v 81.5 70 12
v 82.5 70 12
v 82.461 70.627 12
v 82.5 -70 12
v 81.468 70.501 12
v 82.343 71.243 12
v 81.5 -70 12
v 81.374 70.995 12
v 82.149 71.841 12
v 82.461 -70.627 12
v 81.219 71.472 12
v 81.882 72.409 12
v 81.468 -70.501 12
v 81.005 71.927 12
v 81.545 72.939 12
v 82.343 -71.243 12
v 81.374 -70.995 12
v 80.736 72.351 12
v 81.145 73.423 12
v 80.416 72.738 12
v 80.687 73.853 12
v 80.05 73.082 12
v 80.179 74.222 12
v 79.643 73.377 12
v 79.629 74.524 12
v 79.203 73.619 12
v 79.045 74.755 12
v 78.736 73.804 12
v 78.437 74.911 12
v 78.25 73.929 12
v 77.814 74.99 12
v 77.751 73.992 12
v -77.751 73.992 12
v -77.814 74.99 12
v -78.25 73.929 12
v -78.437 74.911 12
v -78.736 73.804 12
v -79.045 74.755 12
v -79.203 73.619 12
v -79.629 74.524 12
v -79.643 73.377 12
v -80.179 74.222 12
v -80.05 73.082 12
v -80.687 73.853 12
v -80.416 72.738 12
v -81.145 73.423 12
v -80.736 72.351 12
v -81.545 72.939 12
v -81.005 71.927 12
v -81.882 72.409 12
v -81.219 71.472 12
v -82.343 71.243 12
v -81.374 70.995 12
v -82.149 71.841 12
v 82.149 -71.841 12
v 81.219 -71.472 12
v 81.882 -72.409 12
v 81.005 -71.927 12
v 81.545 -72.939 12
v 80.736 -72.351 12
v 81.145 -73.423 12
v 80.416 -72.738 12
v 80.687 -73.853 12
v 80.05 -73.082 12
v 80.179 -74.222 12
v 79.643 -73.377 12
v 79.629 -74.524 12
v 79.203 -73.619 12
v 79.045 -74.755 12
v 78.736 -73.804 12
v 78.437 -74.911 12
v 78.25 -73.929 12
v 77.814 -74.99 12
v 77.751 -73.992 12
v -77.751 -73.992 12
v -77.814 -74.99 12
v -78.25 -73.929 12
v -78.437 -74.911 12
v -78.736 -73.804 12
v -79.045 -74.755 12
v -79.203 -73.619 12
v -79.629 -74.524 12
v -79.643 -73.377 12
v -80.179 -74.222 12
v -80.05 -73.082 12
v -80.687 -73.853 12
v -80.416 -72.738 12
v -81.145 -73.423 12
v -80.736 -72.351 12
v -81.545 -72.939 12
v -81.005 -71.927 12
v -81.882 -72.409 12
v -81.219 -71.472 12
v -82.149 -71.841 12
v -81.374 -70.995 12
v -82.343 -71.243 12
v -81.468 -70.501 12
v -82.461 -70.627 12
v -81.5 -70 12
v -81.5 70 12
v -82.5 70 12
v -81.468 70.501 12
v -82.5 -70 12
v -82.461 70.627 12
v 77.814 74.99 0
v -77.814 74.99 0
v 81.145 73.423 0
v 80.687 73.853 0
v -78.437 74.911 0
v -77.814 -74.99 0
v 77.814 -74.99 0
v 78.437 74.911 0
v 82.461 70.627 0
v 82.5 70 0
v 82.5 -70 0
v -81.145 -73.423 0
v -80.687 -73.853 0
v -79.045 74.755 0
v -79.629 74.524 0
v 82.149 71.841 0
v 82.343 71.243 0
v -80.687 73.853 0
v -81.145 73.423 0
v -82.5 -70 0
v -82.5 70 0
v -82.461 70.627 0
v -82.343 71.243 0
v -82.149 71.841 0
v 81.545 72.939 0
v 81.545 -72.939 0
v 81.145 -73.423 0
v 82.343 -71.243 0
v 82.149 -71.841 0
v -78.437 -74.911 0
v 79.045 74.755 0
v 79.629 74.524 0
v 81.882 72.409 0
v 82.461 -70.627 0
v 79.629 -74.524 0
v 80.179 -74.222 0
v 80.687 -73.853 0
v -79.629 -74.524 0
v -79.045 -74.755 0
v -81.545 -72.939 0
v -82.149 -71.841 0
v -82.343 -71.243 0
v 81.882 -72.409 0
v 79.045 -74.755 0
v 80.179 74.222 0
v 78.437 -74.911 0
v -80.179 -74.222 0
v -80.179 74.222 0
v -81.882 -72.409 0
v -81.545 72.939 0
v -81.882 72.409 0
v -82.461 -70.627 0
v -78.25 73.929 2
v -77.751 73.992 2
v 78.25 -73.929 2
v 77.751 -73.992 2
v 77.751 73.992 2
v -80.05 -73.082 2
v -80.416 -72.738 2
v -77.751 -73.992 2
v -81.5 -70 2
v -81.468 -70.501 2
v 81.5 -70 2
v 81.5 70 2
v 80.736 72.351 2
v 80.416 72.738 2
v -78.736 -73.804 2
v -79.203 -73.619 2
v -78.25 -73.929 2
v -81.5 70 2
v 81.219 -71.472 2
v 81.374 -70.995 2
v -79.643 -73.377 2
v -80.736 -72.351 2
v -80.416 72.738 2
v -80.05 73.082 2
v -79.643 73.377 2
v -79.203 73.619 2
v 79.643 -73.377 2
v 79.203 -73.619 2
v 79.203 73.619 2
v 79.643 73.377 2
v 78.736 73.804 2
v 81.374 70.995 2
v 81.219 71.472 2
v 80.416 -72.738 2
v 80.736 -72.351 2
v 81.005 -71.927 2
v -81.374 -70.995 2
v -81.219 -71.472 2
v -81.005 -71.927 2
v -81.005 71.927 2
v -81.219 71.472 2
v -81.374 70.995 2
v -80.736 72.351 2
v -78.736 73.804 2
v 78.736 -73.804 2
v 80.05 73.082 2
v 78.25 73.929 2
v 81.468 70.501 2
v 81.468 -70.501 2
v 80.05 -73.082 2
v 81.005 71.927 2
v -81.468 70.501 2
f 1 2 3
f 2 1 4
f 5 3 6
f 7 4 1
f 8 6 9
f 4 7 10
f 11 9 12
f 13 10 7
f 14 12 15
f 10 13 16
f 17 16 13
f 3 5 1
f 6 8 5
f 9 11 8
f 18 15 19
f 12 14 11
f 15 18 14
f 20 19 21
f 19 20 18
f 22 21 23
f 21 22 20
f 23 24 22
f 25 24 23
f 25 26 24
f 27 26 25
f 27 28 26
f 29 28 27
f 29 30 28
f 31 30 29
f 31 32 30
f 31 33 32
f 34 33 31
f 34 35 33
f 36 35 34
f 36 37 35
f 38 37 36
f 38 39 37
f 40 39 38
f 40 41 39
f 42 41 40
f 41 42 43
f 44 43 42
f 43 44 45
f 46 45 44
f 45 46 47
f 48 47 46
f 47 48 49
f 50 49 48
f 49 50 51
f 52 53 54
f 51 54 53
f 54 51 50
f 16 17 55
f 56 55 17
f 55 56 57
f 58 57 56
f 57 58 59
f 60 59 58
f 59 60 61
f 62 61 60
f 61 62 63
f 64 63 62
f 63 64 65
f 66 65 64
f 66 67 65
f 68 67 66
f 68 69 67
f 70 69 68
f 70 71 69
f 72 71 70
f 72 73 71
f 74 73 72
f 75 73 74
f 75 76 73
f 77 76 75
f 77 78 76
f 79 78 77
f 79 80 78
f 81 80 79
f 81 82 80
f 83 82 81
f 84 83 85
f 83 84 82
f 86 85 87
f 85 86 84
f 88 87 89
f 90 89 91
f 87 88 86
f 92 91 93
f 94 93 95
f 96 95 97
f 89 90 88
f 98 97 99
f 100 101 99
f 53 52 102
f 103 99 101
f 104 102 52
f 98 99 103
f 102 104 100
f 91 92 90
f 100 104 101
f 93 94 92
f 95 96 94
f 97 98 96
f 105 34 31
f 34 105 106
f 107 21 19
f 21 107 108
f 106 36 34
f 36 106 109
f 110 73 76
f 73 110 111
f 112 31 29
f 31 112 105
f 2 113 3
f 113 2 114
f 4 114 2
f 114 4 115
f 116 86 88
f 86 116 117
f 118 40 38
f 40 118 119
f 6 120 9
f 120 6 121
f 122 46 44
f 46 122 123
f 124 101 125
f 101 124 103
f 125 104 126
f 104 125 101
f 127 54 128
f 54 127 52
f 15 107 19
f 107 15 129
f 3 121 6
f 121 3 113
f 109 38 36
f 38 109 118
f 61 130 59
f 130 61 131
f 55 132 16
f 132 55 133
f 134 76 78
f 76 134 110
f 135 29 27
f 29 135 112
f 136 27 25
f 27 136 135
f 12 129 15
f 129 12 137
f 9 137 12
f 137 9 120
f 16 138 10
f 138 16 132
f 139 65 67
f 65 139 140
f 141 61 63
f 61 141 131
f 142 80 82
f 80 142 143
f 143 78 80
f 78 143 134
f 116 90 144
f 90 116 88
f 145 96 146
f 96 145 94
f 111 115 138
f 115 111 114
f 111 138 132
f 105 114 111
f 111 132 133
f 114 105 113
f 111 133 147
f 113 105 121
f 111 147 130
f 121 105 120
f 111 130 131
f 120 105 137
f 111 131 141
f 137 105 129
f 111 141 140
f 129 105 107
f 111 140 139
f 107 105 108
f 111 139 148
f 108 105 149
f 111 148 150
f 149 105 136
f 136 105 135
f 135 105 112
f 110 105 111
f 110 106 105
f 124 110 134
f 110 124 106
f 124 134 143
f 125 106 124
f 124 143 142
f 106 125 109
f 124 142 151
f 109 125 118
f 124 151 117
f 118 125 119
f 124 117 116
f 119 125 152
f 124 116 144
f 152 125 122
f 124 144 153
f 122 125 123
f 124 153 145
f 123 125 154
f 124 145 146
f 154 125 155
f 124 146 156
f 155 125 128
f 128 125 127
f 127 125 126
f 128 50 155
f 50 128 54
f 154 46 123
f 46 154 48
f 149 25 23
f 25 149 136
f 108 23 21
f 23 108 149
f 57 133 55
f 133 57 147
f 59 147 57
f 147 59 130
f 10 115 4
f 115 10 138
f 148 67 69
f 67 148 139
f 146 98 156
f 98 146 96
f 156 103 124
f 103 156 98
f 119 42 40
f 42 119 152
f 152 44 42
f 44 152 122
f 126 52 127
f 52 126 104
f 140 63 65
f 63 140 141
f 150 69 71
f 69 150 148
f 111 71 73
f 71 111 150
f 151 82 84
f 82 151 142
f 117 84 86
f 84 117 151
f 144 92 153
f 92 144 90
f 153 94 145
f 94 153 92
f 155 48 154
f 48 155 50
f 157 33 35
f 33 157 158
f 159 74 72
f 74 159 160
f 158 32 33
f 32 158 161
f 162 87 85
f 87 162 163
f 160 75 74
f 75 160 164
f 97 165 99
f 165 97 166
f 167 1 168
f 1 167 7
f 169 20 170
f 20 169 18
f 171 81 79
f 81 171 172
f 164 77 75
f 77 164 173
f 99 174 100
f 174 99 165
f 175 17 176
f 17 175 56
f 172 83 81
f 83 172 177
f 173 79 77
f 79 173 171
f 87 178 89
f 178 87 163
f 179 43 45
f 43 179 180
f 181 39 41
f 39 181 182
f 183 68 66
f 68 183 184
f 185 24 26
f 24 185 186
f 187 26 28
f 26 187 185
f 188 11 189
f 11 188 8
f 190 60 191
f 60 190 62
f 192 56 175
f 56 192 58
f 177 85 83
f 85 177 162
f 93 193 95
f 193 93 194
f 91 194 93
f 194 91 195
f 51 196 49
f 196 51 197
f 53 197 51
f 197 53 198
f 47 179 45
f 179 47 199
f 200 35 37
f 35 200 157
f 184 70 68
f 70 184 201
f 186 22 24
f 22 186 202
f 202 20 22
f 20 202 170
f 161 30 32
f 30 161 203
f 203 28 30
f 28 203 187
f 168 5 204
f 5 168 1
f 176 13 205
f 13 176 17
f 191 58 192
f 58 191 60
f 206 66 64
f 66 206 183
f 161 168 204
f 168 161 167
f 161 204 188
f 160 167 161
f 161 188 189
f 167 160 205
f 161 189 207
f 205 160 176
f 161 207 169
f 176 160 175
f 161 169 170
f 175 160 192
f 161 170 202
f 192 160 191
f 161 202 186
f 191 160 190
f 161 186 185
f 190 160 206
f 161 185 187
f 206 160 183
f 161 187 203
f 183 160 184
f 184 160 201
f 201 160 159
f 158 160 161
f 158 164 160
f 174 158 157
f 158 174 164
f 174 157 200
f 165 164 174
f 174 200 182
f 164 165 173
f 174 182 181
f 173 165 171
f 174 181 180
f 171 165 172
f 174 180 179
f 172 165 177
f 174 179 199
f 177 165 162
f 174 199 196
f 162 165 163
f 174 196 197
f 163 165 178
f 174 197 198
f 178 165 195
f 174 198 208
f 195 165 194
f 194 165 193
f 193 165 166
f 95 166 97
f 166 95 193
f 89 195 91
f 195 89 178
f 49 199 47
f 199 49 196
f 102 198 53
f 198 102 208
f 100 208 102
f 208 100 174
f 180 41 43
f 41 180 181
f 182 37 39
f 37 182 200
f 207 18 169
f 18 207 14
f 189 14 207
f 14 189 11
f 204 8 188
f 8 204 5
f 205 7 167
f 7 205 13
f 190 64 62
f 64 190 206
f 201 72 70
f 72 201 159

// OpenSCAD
$fn = 50;


difference() {
	union() {
		hull() {
			translate(v = [-77.5000000000, 70.0000000000, 0]) {
				cylinder(h = 12, r = 5);
			}
			translate(v = [77.5000000000, 70.0000000000, 0]) {
				cylinder(h = 12, r = 5);
			}
			translate(v = [-77.5000000000, -70.0000000000, 0]) {
				cylinder(h = 12, r = 5);
			}
			translate(v = [77.5000000000, -70.0000000000, 0]) {
				cylinder(h = 12, r = 5);
			}
		}
	}
	union() {
		translate(v = [0, 0, 2]) {
			hull() {
				translate(v = [-77.5000000000, 70.0000000000, 0]) {
					cylinder(h = 10, r = 4);
				}
				translate(v = [77.5000000000, 70.0000000000, 0]) {
					cylinder(h = 10, r = 4);
				}
				translate(v = [-77.5000000000, -70.0000000000, 0]) {
					cylinder(h = 10, r = 4);
				}
				translate(v = [77.5000000000, -70.0000000000, 0]) {
					cylinder(h = 10, r = 4);
				}
			}
		}
	}
}
